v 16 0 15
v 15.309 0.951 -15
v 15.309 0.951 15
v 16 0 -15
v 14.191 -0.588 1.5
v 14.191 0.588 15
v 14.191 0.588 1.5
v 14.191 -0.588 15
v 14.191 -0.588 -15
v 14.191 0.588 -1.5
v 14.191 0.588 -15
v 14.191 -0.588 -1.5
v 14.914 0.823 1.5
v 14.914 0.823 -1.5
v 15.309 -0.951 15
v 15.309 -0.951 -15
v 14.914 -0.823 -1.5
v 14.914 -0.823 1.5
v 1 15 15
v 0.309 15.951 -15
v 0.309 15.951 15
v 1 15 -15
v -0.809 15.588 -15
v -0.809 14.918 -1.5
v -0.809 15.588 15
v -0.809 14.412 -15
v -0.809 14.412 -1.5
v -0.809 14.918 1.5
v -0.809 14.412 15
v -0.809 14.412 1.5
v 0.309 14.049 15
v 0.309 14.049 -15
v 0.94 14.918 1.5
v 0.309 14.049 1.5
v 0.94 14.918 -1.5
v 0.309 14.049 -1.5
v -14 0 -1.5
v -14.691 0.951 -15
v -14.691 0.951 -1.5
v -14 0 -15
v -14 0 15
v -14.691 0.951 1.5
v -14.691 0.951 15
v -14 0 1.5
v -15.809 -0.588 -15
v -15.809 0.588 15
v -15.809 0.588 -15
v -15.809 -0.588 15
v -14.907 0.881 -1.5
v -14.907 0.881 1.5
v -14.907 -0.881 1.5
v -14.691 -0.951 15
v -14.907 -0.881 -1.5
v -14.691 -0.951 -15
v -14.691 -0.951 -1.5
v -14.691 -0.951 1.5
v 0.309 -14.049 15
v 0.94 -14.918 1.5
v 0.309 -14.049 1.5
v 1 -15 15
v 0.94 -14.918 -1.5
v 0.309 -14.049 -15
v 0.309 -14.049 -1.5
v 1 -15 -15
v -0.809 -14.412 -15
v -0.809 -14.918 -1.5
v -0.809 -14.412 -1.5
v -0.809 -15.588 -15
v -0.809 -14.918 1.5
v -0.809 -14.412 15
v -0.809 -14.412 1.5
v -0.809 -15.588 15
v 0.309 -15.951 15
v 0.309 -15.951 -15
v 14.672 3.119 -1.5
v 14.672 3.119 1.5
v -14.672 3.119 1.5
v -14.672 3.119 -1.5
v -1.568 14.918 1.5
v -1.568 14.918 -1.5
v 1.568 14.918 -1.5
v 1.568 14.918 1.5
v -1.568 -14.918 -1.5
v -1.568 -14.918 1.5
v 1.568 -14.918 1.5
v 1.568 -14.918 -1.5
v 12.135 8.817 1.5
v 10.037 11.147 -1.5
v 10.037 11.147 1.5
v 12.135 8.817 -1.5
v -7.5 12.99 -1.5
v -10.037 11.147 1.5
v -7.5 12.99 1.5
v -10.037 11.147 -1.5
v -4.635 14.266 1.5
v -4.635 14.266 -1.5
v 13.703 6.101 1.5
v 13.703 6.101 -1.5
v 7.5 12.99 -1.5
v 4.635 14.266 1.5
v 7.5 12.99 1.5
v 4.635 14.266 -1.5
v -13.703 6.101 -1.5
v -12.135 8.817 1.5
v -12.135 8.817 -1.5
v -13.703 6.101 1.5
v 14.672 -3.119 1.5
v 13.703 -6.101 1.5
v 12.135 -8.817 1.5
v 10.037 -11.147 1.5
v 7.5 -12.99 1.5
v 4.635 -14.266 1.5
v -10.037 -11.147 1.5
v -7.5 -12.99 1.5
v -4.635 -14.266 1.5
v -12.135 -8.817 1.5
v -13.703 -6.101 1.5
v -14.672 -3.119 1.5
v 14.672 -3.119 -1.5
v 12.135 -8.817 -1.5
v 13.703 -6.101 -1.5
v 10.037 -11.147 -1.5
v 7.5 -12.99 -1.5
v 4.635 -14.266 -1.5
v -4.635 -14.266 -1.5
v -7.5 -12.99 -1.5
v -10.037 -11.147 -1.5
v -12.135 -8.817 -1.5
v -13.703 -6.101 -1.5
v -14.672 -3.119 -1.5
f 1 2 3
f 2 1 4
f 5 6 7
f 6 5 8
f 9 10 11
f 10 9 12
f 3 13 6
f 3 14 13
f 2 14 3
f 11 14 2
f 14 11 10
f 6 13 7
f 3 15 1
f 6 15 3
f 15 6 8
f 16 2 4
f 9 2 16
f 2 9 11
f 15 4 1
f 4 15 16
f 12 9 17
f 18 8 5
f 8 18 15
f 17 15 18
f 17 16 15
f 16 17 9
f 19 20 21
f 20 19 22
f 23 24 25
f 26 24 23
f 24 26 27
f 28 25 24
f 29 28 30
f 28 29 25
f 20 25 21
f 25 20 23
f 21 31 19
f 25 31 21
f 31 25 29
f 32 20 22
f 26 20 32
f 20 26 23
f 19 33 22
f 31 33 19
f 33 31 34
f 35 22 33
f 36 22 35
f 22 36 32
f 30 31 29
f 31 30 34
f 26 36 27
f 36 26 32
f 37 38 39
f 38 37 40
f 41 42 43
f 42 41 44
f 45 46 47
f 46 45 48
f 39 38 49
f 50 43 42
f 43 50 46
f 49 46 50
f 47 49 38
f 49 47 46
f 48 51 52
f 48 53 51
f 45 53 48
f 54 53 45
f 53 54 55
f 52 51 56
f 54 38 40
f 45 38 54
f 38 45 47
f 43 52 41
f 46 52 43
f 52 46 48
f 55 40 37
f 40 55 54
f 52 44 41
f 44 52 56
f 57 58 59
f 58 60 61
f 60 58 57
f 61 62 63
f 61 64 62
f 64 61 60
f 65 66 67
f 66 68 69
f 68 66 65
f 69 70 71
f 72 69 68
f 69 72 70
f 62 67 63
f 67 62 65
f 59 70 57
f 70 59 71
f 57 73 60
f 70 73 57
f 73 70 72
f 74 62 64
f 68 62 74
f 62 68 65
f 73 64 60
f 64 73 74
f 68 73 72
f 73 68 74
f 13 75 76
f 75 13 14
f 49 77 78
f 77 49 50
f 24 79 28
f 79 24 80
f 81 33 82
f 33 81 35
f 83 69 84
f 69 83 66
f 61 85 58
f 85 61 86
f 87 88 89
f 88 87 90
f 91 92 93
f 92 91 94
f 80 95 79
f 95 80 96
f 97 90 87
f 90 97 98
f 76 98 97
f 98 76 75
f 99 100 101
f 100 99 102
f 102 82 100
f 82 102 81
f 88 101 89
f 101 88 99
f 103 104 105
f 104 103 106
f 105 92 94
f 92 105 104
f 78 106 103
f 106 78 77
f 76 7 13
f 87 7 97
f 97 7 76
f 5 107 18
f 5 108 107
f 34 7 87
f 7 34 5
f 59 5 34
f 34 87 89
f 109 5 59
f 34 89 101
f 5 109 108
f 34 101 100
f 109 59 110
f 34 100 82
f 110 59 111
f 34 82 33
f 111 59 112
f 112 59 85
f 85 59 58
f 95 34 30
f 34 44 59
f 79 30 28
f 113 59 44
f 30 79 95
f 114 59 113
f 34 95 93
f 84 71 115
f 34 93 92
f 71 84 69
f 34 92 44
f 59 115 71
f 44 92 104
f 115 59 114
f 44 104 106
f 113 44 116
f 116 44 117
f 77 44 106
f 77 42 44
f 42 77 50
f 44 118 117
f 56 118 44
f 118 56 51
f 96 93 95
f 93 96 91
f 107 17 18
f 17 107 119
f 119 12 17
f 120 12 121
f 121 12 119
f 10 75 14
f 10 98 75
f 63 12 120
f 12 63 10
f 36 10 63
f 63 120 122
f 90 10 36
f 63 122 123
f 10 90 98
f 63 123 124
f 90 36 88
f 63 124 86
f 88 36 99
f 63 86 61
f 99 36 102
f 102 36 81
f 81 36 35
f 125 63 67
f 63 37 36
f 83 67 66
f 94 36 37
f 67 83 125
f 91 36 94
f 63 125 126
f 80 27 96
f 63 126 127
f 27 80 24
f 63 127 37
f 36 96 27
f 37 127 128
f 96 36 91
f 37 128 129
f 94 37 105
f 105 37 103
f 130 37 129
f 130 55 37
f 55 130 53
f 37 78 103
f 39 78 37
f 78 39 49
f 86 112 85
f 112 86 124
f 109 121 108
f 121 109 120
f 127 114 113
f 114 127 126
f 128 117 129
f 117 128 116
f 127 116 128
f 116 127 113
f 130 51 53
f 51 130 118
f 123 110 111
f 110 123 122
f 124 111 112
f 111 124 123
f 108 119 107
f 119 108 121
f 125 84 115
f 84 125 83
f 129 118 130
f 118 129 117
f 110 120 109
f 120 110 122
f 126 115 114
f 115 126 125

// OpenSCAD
// Table Base
cylinder(h = 3, r = 15, center = true);

// Table Legs
for (i = [0 : 90 : 270]) {
    translate([15 * cos(i), 15 * sin(i), -15])
    cylinder(h = 30, r1 = 1, r2 = 1, center = false);
}
